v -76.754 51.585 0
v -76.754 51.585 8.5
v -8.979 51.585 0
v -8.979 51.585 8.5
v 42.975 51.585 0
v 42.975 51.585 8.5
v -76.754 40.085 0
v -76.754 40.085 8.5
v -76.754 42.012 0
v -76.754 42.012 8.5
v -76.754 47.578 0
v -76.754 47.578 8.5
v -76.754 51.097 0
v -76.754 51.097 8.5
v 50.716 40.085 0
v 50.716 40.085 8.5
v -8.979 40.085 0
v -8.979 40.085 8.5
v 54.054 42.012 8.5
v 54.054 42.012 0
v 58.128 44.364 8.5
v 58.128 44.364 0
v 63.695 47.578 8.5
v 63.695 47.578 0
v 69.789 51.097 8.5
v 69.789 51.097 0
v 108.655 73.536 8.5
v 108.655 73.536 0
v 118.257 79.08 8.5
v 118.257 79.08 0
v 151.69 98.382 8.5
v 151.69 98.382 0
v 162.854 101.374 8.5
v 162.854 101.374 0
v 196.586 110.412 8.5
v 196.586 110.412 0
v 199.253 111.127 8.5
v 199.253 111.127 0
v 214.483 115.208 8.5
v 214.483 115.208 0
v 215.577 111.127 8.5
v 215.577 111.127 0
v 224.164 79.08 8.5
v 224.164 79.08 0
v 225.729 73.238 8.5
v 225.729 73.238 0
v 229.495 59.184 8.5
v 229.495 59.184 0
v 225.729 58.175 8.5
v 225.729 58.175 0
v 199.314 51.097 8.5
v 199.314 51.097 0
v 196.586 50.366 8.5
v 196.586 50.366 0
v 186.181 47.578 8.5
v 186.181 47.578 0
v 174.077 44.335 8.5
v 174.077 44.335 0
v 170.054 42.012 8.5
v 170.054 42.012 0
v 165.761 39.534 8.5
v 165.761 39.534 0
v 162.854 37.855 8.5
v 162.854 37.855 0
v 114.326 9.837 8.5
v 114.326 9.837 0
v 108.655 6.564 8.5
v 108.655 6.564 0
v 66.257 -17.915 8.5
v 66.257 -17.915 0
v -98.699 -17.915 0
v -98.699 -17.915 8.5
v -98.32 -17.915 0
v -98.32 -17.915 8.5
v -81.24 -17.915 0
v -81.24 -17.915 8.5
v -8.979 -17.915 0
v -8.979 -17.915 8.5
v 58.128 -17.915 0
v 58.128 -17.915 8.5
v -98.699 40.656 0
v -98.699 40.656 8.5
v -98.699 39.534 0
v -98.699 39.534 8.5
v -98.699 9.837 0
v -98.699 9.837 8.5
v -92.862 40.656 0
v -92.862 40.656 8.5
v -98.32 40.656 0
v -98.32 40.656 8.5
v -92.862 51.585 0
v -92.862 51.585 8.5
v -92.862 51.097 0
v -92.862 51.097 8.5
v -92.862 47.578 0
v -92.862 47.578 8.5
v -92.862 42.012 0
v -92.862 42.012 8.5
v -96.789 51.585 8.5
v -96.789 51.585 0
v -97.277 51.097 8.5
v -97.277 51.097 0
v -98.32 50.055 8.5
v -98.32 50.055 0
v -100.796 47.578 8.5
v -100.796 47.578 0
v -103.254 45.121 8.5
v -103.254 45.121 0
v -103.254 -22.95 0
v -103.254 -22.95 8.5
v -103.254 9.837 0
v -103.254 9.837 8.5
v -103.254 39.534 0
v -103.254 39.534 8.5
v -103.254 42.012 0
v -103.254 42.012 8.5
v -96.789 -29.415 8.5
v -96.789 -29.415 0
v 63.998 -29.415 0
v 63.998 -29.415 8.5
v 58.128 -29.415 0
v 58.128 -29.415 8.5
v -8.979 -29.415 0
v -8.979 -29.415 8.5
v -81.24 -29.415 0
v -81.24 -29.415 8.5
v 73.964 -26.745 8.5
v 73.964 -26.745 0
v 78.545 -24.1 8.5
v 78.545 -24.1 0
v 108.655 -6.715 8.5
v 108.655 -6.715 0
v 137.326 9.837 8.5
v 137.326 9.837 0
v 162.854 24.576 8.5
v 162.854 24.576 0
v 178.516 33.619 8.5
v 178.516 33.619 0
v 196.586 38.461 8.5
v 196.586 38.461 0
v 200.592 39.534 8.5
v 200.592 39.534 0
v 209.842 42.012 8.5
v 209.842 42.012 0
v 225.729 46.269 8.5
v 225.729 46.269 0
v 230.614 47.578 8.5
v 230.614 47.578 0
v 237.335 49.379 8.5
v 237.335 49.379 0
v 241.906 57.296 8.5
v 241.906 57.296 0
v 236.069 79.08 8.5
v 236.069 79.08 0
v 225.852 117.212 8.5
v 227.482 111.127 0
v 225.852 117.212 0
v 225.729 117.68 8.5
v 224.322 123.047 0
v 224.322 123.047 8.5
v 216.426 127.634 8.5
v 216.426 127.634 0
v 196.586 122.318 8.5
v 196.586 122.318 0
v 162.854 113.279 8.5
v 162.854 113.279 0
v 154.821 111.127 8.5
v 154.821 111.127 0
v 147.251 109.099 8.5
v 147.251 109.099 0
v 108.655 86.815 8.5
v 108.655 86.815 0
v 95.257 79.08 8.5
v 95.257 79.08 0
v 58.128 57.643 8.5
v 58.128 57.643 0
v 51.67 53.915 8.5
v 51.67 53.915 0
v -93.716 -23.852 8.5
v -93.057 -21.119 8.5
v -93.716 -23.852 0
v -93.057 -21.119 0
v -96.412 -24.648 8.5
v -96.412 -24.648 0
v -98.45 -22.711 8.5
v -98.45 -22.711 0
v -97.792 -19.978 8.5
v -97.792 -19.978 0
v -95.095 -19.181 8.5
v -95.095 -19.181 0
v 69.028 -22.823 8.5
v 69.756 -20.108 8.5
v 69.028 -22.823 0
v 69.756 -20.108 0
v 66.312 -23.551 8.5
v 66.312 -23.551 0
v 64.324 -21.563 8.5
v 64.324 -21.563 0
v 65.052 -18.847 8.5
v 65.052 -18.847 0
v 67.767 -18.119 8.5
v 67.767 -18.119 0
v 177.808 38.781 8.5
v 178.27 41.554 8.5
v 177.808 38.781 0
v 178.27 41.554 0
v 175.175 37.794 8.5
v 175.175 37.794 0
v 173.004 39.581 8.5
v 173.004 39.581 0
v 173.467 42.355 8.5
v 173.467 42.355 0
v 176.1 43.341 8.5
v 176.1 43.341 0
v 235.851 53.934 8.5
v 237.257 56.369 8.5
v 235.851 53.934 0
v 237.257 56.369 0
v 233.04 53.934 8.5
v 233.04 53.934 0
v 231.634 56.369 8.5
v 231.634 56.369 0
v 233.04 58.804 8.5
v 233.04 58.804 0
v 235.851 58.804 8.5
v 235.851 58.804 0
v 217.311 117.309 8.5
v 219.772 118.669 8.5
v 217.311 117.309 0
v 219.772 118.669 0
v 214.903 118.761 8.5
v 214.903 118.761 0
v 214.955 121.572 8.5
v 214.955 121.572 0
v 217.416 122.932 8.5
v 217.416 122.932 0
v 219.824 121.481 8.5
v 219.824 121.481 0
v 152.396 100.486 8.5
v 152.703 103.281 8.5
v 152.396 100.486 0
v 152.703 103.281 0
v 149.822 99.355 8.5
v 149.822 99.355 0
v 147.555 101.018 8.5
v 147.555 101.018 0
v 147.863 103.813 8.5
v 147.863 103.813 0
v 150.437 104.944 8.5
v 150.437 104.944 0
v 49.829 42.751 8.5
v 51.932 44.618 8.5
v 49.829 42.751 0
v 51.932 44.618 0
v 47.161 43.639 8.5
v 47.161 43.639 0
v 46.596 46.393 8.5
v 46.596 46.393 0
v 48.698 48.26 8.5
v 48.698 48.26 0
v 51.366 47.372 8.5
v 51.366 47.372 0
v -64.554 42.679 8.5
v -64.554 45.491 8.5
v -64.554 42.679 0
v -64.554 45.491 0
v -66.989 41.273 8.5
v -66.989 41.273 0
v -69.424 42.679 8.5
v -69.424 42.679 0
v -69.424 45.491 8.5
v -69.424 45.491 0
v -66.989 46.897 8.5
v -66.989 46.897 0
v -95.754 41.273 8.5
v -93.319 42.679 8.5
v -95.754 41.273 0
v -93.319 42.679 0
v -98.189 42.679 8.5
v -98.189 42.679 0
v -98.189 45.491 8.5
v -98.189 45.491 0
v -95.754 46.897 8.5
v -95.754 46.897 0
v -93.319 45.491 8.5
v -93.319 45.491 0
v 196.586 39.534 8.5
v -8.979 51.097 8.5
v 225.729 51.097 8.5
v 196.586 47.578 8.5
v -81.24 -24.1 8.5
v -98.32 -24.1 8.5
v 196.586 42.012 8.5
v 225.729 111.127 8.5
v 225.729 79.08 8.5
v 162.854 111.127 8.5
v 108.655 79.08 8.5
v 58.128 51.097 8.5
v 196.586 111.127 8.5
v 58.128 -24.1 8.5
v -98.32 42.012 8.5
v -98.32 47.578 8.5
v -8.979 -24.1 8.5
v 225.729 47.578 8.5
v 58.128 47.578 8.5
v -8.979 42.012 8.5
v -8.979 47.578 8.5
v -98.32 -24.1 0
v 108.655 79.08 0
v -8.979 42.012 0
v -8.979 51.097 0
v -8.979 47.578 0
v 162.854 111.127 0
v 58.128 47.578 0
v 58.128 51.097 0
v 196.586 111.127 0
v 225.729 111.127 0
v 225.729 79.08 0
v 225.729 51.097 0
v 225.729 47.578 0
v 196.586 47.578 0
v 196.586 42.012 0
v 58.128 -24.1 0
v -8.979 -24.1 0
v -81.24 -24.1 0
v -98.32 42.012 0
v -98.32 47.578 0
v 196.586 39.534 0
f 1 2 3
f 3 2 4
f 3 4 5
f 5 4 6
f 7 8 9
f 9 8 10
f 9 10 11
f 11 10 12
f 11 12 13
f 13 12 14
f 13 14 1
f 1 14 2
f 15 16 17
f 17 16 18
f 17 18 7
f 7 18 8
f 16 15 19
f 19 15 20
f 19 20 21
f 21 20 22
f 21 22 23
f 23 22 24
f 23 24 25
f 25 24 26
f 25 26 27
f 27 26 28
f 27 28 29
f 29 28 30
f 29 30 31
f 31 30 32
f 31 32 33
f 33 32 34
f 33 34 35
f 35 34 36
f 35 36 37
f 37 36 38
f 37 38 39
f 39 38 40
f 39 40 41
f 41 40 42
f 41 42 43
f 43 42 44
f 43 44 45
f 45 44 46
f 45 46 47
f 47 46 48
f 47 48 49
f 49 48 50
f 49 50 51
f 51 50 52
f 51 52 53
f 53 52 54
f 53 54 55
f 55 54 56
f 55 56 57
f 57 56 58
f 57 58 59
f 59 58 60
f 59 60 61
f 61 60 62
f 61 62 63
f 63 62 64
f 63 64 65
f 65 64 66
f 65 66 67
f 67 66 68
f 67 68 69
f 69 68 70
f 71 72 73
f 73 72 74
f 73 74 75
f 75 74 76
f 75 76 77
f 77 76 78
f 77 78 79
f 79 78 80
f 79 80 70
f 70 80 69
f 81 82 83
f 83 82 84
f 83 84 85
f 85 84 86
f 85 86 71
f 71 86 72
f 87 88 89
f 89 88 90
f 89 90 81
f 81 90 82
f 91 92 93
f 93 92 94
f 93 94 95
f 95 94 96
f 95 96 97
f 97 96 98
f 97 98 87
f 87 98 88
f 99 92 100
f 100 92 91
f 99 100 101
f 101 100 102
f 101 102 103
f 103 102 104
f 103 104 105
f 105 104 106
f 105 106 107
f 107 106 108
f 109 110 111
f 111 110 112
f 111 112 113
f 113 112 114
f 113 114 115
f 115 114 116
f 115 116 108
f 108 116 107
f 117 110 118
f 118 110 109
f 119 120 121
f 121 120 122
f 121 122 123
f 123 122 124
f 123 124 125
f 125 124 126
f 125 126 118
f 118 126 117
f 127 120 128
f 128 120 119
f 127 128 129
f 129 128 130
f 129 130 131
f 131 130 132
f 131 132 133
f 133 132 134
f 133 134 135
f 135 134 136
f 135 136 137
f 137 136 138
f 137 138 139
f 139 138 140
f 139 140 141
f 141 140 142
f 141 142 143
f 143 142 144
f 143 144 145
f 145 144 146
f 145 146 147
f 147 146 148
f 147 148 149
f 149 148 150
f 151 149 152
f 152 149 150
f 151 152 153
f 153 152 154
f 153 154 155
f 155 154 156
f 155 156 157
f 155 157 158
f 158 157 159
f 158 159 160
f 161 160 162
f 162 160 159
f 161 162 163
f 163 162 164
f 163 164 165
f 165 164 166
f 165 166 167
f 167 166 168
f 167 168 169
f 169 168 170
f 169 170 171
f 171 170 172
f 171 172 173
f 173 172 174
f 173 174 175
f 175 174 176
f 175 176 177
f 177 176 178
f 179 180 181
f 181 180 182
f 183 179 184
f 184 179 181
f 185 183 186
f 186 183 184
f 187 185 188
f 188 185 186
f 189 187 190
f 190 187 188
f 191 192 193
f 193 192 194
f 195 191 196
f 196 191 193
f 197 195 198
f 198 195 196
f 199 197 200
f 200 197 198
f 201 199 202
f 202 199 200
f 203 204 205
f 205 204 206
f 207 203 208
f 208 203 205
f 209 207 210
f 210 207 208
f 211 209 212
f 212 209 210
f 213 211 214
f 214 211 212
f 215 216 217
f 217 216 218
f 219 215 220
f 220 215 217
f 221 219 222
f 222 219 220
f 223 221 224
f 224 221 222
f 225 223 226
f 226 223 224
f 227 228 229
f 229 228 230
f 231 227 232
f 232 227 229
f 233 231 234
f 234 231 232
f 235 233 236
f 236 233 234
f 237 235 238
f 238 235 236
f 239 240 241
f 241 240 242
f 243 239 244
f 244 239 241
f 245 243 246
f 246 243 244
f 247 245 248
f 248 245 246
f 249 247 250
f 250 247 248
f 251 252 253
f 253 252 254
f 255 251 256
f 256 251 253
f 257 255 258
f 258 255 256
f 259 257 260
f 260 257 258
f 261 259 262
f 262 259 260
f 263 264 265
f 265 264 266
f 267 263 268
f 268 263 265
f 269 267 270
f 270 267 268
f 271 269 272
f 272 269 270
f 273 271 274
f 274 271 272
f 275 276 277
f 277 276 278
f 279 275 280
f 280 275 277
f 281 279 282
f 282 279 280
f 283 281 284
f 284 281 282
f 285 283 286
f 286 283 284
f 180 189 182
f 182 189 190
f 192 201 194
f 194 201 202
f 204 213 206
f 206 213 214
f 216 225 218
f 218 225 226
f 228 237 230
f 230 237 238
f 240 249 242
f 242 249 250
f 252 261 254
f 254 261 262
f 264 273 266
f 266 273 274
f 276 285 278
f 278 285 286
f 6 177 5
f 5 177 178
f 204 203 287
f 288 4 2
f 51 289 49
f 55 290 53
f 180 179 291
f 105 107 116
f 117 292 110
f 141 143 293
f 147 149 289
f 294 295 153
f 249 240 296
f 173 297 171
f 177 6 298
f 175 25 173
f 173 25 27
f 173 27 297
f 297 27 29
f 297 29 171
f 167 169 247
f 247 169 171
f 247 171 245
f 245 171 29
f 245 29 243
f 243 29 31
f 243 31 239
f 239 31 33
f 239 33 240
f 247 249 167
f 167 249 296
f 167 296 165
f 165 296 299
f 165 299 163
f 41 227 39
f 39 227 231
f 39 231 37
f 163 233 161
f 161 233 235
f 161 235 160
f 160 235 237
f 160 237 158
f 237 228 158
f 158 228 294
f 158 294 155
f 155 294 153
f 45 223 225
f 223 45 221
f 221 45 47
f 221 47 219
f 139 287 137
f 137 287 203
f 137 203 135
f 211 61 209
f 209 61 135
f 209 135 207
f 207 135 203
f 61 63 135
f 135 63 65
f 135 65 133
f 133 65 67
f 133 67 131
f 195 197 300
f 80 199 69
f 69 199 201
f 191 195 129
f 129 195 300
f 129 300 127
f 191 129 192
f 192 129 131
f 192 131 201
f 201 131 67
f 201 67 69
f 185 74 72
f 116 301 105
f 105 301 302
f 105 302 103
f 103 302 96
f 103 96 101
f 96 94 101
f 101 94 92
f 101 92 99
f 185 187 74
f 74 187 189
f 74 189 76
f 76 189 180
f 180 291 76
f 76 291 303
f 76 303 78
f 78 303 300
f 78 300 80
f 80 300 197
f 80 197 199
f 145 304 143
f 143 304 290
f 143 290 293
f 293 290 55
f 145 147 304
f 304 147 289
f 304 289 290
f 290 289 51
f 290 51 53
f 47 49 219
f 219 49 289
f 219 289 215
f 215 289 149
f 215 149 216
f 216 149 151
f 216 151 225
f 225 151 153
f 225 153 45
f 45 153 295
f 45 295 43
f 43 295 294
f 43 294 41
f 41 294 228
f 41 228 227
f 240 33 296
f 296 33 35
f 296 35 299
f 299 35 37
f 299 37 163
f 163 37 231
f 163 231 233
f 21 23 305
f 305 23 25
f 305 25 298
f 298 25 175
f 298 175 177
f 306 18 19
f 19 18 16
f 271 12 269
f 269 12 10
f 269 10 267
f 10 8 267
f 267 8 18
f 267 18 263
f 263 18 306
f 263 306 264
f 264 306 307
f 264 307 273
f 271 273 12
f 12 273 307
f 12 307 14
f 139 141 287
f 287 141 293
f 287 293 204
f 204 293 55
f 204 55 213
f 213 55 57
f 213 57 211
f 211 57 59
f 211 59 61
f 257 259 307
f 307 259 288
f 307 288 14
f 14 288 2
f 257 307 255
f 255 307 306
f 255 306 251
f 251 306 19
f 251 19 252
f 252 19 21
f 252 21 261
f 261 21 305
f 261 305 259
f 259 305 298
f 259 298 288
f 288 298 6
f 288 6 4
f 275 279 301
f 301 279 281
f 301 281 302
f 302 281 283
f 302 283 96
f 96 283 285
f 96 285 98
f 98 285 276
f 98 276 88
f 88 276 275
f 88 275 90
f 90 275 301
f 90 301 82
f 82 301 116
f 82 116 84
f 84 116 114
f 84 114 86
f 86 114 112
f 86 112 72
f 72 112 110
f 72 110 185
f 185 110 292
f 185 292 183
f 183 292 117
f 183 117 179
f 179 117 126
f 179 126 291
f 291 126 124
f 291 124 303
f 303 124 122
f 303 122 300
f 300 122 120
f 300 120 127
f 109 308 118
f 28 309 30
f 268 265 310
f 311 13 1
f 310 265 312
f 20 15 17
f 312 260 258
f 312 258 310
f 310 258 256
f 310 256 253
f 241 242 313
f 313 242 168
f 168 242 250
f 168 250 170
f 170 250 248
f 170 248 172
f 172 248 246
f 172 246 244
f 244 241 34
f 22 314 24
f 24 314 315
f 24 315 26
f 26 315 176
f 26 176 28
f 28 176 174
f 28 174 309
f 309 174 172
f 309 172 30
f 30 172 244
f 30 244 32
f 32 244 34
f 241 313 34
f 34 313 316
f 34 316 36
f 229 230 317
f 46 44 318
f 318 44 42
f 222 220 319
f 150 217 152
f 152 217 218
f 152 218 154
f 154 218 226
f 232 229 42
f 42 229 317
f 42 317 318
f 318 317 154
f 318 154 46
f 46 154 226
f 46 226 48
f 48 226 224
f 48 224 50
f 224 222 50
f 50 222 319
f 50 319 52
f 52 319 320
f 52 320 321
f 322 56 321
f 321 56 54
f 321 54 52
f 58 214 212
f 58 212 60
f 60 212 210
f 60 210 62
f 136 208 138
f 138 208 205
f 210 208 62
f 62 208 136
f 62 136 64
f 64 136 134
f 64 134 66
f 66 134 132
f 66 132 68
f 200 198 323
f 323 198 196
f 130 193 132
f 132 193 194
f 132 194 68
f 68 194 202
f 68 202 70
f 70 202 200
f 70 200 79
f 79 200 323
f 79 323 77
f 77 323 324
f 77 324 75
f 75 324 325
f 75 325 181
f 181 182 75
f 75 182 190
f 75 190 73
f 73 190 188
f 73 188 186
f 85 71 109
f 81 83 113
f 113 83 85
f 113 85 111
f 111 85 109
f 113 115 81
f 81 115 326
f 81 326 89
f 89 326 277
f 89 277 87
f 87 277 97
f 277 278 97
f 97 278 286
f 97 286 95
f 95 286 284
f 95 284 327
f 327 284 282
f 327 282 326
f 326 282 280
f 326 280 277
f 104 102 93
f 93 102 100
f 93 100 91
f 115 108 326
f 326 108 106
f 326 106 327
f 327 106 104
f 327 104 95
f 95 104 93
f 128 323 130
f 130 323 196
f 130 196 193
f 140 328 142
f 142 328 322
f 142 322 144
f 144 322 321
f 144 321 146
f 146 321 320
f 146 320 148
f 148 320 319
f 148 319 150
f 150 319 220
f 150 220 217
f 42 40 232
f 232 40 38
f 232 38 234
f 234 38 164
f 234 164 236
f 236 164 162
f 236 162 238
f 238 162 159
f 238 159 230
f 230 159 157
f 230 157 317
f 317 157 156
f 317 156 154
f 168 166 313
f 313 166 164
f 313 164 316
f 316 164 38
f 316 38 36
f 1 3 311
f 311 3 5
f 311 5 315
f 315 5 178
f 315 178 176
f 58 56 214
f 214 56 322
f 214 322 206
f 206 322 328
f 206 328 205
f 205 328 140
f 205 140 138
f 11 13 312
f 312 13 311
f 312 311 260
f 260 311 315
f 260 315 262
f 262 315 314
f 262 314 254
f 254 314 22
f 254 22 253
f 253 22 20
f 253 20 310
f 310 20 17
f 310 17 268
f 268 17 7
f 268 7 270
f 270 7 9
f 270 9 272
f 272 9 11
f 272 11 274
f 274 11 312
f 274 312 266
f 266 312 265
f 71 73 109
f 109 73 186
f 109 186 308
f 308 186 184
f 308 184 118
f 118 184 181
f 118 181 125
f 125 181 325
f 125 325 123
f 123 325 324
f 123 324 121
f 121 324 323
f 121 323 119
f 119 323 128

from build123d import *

# Parameters (mm, degrees)
BOSS_EXTRU_1_DEPTH = 8.5


with BuildPart() as part:
    # Esquisse1 → Boss.-Extru.1 (new body)
    with BuildSketch(Plane.XY):
        Polygon((-76.753762562, 40.085106383), (2.011353671, 40.085106383), (50.71612997, 40.085106383), (151.689760112, 98.382258927), (214.4831558, 115.207698591), (229.494660416, 59.184000666), (174.076924484, 44.334863077), (66.257183131, -17.914893617), (-98.698564415, -17.914893617), (-98.698564415, 40.655573641), (-94.860830925, 40.655573641), (-92.861789188, 40.655573641), (-92.861789188, 48.636078378), (-92.861789188, 50.298812036), (-92.861789188, 51.585106383), (-94.860830925, 51.585106383), (-96.789296468, 51.585106383), (-103.253762562, 45.120640289), (-103.253762562, 35.79522772), (-103.253762562, -22.950427523), (-96.789296468, -29.414893617), (63.997857106, -29.414893617), (73.963816863, -26.744522748), (178.515758799, 33.618569072), (237.335031683, 49.379145741), (241.906099495, 57.296467436), (230.508864659, 99.83152691), (225.851857518, 117.211714172), (224.321712805, 123.047343228), (216.426306891, 127.634040432), (210.540810955, 126.057026548), (147.250925797, 109.098552931), (51.669750275, 53.914735514), (42.975455994, 51.585106383), (-75.988646329, 51.585106383), (-76.753762562, 51.585106383), (-76.753762562, 50.298812036), (-76.753762562, 49.585106383), (-76.753762562, 48.636078378), align=None)
        Polygon((-95.09515421, -19.181421764), (-93.057202321, -21.118529255), (-93.715810673, -23.852001108), (-96.412370914, -24.64836547), (-98.450322803, -22.71125798), (-97.791714451, -19.977786126), align=None, mode=Mode.SUBTRACT)
        Polygon((67.767414571, -18.119374886), (69.755583746, -20.107544061), (69.027863321, -22.82343366), (66.311973721, -23.551154085), (64.323804547, -21.56298491), (65.051524972, -18.847095311), align=None, mode=Mode.SUBTRACT)
        Polygon((-93.318762562, 45.490954288), (-93.318762562, 42.679258478), (-95.753762562, 41.273410572), (-98.188762562, 42.679258478), (-98.188762562, 45.490954288), (-95.753762562, 46.896802194), align=None, mode=Mode.SUBTRACT)
        Polygon((-66.988646329, 46.896802194), (-64.553646329, 45.490954288), (-64.553646329, 42.679258478), (-66.988646329, 41.273410572), (-69.423646329, 42.679258478), (-69.423646329, 45.490954288), align=None, mode=Mode.SUBTRACT)
        Polygon((51.366225237, 47.372350111), (51.931744927, 44.618113227), (49.829265662, 42.751240367), (47.161266708, 43.638604392), (46.595747018, 46.392841276), (48.698226283, 48.259714136), align=None, mode=Mode.SUBTRACT)
        Polygon((176.099626255, 43.341034088), (178.27036991, 41.553995947), (177.808121311, 38.780557726), (175.175129056, 37.794157645), (173.004385401, 39.581195786), (173.466634, 42.354634007), align=None, mode=Mode.SUBTRACT)
        Polygon((235.851309069, 58.804459007), (237.257156975, 56.369459007), (235.851309069, 53.934459007), (233.039613258, 53.934459007), (231.633765353, 56.369459007), (233.039613258, 58.804459007), align=None, mode=Mode.SUBTRACT)
        Polygon((150.436891261, 104.94434728), (152.703485209, 103.280560873), (152.395900888, 100.48573973), (149.821722619, 99.354704995), (147.555128671, 101.018491402), (147.862712992, 103.813312544), align=None, mode=Mode.SUBTRACT)
        Polygon((219.824270363, 121.480626406), (219.771686266, 118.66942235), (217.310820089, 117.309359486), (214.90253801, 118.760500678), (214.955122108, 121.571704735), (217.415988284, 122.931767598), align=None, mode=Mode.SUBTRACT)
    extrude(amount=BOSS_EXTRU_1_DEPTH)


solid = part.part
